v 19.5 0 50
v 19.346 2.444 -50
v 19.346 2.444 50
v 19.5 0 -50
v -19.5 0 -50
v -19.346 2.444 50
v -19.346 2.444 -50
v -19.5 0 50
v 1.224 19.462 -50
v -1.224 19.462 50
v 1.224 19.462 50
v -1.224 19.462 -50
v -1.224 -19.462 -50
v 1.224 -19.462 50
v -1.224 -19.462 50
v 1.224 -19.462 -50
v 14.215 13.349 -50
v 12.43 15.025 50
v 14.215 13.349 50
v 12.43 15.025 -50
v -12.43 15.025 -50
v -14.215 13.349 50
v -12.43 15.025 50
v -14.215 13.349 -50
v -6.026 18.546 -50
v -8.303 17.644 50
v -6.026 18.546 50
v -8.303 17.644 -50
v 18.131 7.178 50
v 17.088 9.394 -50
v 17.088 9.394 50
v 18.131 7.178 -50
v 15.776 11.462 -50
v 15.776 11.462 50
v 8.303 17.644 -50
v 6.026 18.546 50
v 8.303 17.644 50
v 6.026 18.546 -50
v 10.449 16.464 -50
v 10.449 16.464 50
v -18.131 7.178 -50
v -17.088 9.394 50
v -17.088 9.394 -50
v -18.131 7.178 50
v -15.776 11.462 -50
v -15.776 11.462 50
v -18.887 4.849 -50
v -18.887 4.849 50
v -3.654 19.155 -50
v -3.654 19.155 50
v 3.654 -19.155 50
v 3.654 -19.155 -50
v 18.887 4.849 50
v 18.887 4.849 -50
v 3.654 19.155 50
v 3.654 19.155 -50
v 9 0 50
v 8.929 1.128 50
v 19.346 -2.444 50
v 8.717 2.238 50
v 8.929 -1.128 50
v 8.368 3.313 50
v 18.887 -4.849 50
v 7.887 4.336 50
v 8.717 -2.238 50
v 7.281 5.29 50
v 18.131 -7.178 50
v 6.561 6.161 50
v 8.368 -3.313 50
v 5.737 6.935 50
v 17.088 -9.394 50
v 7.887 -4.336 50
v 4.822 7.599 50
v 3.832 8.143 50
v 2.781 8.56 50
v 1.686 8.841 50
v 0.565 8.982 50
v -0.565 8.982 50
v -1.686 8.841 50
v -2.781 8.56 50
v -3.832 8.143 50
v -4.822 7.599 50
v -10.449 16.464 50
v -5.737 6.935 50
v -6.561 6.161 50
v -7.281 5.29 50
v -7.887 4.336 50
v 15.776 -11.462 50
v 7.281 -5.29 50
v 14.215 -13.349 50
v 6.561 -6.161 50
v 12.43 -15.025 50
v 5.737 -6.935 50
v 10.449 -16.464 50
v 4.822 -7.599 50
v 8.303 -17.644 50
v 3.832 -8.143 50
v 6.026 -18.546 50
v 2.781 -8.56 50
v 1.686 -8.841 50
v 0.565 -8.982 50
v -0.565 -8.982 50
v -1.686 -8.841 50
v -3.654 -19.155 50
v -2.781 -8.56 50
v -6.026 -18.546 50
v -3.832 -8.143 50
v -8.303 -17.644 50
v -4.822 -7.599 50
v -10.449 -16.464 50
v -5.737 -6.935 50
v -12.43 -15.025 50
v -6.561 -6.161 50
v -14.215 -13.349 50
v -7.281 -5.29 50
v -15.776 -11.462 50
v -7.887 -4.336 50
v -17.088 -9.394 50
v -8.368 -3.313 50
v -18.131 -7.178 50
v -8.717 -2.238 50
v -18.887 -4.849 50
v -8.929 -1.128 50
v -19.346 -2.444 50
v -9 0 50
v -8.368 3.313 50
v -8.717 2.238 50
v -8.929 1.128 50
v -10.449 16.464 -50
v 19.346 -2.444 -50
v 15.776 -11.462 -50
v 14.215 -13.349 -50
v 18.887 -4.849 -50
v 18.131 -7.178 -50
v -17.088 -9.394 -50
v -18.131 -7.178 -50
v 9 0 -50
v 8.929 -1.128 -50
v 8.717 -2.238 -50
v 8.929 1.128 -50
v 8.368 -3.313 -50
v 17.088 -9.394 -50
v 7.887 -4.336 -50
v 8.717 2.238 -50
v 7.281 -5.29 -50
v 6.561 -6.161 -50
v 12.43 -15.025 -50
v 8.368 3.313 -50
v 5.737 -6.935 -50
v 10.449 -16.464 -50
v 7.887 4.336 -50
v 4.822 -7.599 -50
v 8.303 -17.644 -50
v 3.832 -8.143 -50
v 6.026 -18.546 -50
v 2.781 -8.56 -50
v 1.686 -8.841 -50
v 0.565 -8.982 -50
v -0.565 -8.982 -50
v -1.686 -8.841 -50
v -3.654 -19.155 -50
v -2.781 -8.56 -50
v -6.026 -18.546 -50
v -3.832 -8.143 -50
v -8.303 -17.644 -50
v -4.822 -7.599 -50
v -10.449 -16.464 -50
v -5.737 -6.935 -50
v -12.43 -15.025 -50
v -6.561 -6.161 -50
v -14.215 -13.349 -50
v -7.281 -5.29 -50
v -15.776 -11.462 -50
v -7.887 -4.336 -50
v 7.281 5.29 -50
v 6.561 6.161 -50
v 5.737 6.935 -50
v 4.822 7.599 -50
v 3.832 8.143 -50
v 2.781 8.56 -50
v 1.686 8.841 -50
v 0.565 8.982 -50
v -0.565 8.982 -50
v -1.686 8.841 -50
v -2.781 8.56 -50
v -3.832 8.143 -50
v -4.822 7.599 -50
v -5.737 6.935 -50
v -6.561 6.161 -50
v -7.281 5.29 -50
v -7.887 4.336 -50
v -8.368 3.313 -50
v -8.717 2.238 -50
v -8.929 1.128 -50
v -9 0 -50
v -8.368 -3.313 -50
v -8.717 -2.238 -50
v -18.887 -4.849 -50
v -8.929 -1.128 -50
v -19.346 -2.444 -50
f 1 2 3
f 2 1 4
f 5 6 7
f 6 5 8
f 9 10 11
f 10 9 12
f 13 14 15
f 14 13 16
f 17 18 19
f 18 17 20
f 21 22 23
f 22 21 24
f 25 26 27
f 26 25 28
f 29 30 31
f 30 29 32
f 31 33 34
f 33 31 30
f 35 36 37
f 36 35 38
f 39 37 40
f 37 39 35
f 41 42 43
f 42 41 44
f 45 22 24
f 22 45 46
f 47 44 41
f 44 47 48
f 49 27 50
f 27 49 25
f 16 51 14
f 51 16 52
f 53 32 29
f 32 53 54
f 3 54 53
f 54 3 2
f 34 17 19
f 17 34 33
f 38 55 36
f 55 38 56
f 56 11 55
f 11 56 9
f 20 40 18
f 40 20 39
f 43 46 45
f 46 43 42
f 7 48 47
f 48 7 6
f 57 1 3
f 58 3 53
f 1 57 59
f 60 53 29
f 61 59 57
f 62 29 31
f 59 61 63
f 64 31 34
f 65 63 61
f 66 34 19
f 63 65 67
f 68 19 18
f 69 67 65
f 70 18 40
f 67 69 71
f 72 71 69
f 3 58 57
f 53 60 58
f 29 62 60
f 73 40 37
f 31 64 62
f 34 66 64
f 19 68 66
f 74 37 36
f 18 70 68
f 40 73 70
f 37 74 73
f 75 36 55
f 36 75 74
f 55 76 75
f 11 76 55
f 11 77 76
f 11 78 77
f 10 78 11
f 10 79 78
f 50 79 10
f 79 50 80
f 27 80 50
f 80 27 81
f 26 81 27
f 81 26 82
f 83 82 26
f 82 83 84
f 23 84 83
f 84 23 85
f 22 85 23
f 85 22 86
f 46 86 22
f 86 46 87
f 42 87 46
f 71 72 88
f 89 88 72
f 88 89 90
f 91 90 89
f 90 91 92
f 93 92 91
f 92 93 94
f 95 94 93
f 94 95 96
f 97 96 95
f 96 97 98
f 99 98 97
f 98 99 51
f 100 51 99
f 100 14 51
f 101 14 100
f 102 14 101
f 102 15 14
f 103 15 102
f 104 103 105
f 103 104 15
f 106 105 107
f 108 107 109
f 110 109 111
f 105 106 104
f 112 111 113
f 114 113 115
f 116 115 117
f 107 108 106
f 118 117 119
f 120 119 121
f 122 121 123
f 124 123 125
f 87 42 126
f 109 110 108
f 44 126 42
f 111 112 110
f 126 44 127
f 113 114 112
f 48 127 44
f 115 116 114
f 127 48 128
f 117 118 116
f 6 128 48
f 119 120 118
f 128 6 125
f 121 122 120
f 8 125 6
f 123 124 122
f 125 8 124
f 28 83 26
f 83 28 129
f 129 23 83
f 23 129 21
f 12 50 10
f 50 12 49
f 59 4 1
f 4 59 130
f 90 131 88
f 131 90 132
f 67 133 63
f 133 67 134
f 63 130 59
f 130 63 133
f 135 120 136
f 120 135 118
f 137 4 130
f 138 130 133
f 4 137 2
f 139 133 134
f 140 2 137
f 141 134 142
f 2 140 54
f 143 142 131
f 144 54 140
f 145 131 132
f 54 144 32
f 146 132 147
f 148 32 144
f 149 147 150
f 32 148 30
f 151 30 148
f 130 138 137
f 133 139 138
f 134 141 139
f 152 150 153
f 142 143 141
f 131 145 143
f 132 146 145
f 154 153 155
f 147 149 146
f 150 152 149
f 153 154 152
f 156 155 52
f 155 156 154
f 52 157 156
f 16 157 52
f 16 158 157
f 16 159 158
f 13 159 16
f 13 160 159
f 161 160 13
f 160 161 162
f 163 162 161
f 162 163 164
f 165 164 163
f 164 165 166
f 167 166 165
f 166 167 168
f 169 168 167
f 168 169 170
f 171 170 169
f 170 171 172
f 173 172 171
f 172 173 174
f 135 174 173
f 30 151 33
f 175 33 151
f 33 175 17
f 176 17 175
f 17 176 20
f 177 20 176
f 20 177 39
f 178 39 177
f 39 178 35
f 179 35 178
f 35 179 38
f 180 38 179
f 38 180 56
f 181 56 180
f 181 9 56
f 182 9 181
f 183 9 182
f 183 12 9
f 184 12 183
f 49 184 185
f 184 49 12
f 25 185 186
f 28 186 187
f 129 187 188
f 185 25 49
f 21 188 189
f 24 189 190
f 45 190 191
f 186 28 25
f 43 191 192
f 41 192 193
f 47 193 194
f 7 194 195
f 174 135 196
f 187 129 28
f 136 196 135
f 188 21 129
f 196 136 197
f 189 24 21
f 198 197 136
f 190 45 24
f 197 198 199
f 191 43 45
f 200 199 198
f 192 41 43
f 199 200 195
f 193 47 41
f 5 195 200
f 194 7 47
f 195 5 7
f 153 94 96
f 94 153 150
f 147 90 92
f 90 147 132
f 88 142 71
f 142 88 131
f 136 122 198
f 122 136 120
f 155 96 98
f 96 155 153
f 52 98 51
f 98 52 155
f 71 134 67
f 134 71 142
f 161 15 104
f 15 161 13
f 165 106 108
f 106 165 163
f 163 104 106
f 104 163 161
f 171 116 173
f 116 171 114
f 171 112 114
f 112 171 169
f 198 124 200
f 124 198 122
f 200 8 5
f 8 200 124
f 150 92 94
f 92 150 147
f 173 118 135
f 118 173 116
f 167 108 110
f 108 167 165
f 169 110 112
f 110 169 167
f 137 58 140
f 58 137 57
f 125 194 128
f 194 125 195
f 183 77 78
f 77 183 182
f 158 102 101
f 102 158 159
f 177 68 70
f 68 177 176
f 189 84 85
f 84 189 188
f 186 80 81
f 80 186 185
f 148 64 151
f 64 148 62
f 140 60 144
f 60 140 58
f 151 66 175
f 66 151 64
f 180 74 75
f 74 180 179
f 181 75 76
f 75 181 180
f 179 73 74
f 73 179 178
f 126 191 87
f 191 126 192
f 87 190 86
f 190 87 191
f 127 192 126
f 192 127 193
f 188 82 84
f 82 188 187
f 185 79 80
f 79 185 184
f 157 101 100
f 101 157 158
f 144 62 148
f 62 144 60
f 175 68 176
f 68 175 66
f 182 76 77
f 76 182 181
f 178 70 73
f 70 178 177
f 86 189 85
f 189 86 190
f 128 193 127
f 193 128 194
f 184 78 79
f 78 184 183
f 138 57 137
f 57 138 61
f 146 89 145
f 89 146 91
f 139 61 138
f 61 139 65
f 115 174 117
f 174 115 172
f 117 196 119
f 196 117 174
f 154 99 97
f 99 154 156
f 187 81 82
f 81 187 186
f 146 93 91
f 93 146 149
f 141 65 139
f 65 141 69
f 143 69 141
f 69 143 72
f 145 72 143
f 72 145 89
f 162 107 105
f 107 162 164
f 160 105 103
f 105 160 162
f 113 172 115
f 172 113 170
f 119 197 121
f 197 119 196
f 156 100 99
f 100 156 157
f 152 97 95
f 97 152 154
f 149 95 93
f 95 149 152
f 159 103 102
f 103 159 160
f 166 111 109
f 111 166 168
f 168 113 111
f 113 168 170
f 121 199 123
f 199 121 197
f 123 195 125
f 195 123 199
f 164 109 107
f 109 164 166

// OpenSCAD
$fn = 50;


difference() {
	union() {
		translate(v = [0, 0, -50.0000000000]) {
			cylinder(h = 100, r = 19.5000000000);
		}
	}
	union() {
		translate(v = [0, 0, -100.0000000000]) {
			cylinder(h = 200, r = 9);
		}
	}
}
